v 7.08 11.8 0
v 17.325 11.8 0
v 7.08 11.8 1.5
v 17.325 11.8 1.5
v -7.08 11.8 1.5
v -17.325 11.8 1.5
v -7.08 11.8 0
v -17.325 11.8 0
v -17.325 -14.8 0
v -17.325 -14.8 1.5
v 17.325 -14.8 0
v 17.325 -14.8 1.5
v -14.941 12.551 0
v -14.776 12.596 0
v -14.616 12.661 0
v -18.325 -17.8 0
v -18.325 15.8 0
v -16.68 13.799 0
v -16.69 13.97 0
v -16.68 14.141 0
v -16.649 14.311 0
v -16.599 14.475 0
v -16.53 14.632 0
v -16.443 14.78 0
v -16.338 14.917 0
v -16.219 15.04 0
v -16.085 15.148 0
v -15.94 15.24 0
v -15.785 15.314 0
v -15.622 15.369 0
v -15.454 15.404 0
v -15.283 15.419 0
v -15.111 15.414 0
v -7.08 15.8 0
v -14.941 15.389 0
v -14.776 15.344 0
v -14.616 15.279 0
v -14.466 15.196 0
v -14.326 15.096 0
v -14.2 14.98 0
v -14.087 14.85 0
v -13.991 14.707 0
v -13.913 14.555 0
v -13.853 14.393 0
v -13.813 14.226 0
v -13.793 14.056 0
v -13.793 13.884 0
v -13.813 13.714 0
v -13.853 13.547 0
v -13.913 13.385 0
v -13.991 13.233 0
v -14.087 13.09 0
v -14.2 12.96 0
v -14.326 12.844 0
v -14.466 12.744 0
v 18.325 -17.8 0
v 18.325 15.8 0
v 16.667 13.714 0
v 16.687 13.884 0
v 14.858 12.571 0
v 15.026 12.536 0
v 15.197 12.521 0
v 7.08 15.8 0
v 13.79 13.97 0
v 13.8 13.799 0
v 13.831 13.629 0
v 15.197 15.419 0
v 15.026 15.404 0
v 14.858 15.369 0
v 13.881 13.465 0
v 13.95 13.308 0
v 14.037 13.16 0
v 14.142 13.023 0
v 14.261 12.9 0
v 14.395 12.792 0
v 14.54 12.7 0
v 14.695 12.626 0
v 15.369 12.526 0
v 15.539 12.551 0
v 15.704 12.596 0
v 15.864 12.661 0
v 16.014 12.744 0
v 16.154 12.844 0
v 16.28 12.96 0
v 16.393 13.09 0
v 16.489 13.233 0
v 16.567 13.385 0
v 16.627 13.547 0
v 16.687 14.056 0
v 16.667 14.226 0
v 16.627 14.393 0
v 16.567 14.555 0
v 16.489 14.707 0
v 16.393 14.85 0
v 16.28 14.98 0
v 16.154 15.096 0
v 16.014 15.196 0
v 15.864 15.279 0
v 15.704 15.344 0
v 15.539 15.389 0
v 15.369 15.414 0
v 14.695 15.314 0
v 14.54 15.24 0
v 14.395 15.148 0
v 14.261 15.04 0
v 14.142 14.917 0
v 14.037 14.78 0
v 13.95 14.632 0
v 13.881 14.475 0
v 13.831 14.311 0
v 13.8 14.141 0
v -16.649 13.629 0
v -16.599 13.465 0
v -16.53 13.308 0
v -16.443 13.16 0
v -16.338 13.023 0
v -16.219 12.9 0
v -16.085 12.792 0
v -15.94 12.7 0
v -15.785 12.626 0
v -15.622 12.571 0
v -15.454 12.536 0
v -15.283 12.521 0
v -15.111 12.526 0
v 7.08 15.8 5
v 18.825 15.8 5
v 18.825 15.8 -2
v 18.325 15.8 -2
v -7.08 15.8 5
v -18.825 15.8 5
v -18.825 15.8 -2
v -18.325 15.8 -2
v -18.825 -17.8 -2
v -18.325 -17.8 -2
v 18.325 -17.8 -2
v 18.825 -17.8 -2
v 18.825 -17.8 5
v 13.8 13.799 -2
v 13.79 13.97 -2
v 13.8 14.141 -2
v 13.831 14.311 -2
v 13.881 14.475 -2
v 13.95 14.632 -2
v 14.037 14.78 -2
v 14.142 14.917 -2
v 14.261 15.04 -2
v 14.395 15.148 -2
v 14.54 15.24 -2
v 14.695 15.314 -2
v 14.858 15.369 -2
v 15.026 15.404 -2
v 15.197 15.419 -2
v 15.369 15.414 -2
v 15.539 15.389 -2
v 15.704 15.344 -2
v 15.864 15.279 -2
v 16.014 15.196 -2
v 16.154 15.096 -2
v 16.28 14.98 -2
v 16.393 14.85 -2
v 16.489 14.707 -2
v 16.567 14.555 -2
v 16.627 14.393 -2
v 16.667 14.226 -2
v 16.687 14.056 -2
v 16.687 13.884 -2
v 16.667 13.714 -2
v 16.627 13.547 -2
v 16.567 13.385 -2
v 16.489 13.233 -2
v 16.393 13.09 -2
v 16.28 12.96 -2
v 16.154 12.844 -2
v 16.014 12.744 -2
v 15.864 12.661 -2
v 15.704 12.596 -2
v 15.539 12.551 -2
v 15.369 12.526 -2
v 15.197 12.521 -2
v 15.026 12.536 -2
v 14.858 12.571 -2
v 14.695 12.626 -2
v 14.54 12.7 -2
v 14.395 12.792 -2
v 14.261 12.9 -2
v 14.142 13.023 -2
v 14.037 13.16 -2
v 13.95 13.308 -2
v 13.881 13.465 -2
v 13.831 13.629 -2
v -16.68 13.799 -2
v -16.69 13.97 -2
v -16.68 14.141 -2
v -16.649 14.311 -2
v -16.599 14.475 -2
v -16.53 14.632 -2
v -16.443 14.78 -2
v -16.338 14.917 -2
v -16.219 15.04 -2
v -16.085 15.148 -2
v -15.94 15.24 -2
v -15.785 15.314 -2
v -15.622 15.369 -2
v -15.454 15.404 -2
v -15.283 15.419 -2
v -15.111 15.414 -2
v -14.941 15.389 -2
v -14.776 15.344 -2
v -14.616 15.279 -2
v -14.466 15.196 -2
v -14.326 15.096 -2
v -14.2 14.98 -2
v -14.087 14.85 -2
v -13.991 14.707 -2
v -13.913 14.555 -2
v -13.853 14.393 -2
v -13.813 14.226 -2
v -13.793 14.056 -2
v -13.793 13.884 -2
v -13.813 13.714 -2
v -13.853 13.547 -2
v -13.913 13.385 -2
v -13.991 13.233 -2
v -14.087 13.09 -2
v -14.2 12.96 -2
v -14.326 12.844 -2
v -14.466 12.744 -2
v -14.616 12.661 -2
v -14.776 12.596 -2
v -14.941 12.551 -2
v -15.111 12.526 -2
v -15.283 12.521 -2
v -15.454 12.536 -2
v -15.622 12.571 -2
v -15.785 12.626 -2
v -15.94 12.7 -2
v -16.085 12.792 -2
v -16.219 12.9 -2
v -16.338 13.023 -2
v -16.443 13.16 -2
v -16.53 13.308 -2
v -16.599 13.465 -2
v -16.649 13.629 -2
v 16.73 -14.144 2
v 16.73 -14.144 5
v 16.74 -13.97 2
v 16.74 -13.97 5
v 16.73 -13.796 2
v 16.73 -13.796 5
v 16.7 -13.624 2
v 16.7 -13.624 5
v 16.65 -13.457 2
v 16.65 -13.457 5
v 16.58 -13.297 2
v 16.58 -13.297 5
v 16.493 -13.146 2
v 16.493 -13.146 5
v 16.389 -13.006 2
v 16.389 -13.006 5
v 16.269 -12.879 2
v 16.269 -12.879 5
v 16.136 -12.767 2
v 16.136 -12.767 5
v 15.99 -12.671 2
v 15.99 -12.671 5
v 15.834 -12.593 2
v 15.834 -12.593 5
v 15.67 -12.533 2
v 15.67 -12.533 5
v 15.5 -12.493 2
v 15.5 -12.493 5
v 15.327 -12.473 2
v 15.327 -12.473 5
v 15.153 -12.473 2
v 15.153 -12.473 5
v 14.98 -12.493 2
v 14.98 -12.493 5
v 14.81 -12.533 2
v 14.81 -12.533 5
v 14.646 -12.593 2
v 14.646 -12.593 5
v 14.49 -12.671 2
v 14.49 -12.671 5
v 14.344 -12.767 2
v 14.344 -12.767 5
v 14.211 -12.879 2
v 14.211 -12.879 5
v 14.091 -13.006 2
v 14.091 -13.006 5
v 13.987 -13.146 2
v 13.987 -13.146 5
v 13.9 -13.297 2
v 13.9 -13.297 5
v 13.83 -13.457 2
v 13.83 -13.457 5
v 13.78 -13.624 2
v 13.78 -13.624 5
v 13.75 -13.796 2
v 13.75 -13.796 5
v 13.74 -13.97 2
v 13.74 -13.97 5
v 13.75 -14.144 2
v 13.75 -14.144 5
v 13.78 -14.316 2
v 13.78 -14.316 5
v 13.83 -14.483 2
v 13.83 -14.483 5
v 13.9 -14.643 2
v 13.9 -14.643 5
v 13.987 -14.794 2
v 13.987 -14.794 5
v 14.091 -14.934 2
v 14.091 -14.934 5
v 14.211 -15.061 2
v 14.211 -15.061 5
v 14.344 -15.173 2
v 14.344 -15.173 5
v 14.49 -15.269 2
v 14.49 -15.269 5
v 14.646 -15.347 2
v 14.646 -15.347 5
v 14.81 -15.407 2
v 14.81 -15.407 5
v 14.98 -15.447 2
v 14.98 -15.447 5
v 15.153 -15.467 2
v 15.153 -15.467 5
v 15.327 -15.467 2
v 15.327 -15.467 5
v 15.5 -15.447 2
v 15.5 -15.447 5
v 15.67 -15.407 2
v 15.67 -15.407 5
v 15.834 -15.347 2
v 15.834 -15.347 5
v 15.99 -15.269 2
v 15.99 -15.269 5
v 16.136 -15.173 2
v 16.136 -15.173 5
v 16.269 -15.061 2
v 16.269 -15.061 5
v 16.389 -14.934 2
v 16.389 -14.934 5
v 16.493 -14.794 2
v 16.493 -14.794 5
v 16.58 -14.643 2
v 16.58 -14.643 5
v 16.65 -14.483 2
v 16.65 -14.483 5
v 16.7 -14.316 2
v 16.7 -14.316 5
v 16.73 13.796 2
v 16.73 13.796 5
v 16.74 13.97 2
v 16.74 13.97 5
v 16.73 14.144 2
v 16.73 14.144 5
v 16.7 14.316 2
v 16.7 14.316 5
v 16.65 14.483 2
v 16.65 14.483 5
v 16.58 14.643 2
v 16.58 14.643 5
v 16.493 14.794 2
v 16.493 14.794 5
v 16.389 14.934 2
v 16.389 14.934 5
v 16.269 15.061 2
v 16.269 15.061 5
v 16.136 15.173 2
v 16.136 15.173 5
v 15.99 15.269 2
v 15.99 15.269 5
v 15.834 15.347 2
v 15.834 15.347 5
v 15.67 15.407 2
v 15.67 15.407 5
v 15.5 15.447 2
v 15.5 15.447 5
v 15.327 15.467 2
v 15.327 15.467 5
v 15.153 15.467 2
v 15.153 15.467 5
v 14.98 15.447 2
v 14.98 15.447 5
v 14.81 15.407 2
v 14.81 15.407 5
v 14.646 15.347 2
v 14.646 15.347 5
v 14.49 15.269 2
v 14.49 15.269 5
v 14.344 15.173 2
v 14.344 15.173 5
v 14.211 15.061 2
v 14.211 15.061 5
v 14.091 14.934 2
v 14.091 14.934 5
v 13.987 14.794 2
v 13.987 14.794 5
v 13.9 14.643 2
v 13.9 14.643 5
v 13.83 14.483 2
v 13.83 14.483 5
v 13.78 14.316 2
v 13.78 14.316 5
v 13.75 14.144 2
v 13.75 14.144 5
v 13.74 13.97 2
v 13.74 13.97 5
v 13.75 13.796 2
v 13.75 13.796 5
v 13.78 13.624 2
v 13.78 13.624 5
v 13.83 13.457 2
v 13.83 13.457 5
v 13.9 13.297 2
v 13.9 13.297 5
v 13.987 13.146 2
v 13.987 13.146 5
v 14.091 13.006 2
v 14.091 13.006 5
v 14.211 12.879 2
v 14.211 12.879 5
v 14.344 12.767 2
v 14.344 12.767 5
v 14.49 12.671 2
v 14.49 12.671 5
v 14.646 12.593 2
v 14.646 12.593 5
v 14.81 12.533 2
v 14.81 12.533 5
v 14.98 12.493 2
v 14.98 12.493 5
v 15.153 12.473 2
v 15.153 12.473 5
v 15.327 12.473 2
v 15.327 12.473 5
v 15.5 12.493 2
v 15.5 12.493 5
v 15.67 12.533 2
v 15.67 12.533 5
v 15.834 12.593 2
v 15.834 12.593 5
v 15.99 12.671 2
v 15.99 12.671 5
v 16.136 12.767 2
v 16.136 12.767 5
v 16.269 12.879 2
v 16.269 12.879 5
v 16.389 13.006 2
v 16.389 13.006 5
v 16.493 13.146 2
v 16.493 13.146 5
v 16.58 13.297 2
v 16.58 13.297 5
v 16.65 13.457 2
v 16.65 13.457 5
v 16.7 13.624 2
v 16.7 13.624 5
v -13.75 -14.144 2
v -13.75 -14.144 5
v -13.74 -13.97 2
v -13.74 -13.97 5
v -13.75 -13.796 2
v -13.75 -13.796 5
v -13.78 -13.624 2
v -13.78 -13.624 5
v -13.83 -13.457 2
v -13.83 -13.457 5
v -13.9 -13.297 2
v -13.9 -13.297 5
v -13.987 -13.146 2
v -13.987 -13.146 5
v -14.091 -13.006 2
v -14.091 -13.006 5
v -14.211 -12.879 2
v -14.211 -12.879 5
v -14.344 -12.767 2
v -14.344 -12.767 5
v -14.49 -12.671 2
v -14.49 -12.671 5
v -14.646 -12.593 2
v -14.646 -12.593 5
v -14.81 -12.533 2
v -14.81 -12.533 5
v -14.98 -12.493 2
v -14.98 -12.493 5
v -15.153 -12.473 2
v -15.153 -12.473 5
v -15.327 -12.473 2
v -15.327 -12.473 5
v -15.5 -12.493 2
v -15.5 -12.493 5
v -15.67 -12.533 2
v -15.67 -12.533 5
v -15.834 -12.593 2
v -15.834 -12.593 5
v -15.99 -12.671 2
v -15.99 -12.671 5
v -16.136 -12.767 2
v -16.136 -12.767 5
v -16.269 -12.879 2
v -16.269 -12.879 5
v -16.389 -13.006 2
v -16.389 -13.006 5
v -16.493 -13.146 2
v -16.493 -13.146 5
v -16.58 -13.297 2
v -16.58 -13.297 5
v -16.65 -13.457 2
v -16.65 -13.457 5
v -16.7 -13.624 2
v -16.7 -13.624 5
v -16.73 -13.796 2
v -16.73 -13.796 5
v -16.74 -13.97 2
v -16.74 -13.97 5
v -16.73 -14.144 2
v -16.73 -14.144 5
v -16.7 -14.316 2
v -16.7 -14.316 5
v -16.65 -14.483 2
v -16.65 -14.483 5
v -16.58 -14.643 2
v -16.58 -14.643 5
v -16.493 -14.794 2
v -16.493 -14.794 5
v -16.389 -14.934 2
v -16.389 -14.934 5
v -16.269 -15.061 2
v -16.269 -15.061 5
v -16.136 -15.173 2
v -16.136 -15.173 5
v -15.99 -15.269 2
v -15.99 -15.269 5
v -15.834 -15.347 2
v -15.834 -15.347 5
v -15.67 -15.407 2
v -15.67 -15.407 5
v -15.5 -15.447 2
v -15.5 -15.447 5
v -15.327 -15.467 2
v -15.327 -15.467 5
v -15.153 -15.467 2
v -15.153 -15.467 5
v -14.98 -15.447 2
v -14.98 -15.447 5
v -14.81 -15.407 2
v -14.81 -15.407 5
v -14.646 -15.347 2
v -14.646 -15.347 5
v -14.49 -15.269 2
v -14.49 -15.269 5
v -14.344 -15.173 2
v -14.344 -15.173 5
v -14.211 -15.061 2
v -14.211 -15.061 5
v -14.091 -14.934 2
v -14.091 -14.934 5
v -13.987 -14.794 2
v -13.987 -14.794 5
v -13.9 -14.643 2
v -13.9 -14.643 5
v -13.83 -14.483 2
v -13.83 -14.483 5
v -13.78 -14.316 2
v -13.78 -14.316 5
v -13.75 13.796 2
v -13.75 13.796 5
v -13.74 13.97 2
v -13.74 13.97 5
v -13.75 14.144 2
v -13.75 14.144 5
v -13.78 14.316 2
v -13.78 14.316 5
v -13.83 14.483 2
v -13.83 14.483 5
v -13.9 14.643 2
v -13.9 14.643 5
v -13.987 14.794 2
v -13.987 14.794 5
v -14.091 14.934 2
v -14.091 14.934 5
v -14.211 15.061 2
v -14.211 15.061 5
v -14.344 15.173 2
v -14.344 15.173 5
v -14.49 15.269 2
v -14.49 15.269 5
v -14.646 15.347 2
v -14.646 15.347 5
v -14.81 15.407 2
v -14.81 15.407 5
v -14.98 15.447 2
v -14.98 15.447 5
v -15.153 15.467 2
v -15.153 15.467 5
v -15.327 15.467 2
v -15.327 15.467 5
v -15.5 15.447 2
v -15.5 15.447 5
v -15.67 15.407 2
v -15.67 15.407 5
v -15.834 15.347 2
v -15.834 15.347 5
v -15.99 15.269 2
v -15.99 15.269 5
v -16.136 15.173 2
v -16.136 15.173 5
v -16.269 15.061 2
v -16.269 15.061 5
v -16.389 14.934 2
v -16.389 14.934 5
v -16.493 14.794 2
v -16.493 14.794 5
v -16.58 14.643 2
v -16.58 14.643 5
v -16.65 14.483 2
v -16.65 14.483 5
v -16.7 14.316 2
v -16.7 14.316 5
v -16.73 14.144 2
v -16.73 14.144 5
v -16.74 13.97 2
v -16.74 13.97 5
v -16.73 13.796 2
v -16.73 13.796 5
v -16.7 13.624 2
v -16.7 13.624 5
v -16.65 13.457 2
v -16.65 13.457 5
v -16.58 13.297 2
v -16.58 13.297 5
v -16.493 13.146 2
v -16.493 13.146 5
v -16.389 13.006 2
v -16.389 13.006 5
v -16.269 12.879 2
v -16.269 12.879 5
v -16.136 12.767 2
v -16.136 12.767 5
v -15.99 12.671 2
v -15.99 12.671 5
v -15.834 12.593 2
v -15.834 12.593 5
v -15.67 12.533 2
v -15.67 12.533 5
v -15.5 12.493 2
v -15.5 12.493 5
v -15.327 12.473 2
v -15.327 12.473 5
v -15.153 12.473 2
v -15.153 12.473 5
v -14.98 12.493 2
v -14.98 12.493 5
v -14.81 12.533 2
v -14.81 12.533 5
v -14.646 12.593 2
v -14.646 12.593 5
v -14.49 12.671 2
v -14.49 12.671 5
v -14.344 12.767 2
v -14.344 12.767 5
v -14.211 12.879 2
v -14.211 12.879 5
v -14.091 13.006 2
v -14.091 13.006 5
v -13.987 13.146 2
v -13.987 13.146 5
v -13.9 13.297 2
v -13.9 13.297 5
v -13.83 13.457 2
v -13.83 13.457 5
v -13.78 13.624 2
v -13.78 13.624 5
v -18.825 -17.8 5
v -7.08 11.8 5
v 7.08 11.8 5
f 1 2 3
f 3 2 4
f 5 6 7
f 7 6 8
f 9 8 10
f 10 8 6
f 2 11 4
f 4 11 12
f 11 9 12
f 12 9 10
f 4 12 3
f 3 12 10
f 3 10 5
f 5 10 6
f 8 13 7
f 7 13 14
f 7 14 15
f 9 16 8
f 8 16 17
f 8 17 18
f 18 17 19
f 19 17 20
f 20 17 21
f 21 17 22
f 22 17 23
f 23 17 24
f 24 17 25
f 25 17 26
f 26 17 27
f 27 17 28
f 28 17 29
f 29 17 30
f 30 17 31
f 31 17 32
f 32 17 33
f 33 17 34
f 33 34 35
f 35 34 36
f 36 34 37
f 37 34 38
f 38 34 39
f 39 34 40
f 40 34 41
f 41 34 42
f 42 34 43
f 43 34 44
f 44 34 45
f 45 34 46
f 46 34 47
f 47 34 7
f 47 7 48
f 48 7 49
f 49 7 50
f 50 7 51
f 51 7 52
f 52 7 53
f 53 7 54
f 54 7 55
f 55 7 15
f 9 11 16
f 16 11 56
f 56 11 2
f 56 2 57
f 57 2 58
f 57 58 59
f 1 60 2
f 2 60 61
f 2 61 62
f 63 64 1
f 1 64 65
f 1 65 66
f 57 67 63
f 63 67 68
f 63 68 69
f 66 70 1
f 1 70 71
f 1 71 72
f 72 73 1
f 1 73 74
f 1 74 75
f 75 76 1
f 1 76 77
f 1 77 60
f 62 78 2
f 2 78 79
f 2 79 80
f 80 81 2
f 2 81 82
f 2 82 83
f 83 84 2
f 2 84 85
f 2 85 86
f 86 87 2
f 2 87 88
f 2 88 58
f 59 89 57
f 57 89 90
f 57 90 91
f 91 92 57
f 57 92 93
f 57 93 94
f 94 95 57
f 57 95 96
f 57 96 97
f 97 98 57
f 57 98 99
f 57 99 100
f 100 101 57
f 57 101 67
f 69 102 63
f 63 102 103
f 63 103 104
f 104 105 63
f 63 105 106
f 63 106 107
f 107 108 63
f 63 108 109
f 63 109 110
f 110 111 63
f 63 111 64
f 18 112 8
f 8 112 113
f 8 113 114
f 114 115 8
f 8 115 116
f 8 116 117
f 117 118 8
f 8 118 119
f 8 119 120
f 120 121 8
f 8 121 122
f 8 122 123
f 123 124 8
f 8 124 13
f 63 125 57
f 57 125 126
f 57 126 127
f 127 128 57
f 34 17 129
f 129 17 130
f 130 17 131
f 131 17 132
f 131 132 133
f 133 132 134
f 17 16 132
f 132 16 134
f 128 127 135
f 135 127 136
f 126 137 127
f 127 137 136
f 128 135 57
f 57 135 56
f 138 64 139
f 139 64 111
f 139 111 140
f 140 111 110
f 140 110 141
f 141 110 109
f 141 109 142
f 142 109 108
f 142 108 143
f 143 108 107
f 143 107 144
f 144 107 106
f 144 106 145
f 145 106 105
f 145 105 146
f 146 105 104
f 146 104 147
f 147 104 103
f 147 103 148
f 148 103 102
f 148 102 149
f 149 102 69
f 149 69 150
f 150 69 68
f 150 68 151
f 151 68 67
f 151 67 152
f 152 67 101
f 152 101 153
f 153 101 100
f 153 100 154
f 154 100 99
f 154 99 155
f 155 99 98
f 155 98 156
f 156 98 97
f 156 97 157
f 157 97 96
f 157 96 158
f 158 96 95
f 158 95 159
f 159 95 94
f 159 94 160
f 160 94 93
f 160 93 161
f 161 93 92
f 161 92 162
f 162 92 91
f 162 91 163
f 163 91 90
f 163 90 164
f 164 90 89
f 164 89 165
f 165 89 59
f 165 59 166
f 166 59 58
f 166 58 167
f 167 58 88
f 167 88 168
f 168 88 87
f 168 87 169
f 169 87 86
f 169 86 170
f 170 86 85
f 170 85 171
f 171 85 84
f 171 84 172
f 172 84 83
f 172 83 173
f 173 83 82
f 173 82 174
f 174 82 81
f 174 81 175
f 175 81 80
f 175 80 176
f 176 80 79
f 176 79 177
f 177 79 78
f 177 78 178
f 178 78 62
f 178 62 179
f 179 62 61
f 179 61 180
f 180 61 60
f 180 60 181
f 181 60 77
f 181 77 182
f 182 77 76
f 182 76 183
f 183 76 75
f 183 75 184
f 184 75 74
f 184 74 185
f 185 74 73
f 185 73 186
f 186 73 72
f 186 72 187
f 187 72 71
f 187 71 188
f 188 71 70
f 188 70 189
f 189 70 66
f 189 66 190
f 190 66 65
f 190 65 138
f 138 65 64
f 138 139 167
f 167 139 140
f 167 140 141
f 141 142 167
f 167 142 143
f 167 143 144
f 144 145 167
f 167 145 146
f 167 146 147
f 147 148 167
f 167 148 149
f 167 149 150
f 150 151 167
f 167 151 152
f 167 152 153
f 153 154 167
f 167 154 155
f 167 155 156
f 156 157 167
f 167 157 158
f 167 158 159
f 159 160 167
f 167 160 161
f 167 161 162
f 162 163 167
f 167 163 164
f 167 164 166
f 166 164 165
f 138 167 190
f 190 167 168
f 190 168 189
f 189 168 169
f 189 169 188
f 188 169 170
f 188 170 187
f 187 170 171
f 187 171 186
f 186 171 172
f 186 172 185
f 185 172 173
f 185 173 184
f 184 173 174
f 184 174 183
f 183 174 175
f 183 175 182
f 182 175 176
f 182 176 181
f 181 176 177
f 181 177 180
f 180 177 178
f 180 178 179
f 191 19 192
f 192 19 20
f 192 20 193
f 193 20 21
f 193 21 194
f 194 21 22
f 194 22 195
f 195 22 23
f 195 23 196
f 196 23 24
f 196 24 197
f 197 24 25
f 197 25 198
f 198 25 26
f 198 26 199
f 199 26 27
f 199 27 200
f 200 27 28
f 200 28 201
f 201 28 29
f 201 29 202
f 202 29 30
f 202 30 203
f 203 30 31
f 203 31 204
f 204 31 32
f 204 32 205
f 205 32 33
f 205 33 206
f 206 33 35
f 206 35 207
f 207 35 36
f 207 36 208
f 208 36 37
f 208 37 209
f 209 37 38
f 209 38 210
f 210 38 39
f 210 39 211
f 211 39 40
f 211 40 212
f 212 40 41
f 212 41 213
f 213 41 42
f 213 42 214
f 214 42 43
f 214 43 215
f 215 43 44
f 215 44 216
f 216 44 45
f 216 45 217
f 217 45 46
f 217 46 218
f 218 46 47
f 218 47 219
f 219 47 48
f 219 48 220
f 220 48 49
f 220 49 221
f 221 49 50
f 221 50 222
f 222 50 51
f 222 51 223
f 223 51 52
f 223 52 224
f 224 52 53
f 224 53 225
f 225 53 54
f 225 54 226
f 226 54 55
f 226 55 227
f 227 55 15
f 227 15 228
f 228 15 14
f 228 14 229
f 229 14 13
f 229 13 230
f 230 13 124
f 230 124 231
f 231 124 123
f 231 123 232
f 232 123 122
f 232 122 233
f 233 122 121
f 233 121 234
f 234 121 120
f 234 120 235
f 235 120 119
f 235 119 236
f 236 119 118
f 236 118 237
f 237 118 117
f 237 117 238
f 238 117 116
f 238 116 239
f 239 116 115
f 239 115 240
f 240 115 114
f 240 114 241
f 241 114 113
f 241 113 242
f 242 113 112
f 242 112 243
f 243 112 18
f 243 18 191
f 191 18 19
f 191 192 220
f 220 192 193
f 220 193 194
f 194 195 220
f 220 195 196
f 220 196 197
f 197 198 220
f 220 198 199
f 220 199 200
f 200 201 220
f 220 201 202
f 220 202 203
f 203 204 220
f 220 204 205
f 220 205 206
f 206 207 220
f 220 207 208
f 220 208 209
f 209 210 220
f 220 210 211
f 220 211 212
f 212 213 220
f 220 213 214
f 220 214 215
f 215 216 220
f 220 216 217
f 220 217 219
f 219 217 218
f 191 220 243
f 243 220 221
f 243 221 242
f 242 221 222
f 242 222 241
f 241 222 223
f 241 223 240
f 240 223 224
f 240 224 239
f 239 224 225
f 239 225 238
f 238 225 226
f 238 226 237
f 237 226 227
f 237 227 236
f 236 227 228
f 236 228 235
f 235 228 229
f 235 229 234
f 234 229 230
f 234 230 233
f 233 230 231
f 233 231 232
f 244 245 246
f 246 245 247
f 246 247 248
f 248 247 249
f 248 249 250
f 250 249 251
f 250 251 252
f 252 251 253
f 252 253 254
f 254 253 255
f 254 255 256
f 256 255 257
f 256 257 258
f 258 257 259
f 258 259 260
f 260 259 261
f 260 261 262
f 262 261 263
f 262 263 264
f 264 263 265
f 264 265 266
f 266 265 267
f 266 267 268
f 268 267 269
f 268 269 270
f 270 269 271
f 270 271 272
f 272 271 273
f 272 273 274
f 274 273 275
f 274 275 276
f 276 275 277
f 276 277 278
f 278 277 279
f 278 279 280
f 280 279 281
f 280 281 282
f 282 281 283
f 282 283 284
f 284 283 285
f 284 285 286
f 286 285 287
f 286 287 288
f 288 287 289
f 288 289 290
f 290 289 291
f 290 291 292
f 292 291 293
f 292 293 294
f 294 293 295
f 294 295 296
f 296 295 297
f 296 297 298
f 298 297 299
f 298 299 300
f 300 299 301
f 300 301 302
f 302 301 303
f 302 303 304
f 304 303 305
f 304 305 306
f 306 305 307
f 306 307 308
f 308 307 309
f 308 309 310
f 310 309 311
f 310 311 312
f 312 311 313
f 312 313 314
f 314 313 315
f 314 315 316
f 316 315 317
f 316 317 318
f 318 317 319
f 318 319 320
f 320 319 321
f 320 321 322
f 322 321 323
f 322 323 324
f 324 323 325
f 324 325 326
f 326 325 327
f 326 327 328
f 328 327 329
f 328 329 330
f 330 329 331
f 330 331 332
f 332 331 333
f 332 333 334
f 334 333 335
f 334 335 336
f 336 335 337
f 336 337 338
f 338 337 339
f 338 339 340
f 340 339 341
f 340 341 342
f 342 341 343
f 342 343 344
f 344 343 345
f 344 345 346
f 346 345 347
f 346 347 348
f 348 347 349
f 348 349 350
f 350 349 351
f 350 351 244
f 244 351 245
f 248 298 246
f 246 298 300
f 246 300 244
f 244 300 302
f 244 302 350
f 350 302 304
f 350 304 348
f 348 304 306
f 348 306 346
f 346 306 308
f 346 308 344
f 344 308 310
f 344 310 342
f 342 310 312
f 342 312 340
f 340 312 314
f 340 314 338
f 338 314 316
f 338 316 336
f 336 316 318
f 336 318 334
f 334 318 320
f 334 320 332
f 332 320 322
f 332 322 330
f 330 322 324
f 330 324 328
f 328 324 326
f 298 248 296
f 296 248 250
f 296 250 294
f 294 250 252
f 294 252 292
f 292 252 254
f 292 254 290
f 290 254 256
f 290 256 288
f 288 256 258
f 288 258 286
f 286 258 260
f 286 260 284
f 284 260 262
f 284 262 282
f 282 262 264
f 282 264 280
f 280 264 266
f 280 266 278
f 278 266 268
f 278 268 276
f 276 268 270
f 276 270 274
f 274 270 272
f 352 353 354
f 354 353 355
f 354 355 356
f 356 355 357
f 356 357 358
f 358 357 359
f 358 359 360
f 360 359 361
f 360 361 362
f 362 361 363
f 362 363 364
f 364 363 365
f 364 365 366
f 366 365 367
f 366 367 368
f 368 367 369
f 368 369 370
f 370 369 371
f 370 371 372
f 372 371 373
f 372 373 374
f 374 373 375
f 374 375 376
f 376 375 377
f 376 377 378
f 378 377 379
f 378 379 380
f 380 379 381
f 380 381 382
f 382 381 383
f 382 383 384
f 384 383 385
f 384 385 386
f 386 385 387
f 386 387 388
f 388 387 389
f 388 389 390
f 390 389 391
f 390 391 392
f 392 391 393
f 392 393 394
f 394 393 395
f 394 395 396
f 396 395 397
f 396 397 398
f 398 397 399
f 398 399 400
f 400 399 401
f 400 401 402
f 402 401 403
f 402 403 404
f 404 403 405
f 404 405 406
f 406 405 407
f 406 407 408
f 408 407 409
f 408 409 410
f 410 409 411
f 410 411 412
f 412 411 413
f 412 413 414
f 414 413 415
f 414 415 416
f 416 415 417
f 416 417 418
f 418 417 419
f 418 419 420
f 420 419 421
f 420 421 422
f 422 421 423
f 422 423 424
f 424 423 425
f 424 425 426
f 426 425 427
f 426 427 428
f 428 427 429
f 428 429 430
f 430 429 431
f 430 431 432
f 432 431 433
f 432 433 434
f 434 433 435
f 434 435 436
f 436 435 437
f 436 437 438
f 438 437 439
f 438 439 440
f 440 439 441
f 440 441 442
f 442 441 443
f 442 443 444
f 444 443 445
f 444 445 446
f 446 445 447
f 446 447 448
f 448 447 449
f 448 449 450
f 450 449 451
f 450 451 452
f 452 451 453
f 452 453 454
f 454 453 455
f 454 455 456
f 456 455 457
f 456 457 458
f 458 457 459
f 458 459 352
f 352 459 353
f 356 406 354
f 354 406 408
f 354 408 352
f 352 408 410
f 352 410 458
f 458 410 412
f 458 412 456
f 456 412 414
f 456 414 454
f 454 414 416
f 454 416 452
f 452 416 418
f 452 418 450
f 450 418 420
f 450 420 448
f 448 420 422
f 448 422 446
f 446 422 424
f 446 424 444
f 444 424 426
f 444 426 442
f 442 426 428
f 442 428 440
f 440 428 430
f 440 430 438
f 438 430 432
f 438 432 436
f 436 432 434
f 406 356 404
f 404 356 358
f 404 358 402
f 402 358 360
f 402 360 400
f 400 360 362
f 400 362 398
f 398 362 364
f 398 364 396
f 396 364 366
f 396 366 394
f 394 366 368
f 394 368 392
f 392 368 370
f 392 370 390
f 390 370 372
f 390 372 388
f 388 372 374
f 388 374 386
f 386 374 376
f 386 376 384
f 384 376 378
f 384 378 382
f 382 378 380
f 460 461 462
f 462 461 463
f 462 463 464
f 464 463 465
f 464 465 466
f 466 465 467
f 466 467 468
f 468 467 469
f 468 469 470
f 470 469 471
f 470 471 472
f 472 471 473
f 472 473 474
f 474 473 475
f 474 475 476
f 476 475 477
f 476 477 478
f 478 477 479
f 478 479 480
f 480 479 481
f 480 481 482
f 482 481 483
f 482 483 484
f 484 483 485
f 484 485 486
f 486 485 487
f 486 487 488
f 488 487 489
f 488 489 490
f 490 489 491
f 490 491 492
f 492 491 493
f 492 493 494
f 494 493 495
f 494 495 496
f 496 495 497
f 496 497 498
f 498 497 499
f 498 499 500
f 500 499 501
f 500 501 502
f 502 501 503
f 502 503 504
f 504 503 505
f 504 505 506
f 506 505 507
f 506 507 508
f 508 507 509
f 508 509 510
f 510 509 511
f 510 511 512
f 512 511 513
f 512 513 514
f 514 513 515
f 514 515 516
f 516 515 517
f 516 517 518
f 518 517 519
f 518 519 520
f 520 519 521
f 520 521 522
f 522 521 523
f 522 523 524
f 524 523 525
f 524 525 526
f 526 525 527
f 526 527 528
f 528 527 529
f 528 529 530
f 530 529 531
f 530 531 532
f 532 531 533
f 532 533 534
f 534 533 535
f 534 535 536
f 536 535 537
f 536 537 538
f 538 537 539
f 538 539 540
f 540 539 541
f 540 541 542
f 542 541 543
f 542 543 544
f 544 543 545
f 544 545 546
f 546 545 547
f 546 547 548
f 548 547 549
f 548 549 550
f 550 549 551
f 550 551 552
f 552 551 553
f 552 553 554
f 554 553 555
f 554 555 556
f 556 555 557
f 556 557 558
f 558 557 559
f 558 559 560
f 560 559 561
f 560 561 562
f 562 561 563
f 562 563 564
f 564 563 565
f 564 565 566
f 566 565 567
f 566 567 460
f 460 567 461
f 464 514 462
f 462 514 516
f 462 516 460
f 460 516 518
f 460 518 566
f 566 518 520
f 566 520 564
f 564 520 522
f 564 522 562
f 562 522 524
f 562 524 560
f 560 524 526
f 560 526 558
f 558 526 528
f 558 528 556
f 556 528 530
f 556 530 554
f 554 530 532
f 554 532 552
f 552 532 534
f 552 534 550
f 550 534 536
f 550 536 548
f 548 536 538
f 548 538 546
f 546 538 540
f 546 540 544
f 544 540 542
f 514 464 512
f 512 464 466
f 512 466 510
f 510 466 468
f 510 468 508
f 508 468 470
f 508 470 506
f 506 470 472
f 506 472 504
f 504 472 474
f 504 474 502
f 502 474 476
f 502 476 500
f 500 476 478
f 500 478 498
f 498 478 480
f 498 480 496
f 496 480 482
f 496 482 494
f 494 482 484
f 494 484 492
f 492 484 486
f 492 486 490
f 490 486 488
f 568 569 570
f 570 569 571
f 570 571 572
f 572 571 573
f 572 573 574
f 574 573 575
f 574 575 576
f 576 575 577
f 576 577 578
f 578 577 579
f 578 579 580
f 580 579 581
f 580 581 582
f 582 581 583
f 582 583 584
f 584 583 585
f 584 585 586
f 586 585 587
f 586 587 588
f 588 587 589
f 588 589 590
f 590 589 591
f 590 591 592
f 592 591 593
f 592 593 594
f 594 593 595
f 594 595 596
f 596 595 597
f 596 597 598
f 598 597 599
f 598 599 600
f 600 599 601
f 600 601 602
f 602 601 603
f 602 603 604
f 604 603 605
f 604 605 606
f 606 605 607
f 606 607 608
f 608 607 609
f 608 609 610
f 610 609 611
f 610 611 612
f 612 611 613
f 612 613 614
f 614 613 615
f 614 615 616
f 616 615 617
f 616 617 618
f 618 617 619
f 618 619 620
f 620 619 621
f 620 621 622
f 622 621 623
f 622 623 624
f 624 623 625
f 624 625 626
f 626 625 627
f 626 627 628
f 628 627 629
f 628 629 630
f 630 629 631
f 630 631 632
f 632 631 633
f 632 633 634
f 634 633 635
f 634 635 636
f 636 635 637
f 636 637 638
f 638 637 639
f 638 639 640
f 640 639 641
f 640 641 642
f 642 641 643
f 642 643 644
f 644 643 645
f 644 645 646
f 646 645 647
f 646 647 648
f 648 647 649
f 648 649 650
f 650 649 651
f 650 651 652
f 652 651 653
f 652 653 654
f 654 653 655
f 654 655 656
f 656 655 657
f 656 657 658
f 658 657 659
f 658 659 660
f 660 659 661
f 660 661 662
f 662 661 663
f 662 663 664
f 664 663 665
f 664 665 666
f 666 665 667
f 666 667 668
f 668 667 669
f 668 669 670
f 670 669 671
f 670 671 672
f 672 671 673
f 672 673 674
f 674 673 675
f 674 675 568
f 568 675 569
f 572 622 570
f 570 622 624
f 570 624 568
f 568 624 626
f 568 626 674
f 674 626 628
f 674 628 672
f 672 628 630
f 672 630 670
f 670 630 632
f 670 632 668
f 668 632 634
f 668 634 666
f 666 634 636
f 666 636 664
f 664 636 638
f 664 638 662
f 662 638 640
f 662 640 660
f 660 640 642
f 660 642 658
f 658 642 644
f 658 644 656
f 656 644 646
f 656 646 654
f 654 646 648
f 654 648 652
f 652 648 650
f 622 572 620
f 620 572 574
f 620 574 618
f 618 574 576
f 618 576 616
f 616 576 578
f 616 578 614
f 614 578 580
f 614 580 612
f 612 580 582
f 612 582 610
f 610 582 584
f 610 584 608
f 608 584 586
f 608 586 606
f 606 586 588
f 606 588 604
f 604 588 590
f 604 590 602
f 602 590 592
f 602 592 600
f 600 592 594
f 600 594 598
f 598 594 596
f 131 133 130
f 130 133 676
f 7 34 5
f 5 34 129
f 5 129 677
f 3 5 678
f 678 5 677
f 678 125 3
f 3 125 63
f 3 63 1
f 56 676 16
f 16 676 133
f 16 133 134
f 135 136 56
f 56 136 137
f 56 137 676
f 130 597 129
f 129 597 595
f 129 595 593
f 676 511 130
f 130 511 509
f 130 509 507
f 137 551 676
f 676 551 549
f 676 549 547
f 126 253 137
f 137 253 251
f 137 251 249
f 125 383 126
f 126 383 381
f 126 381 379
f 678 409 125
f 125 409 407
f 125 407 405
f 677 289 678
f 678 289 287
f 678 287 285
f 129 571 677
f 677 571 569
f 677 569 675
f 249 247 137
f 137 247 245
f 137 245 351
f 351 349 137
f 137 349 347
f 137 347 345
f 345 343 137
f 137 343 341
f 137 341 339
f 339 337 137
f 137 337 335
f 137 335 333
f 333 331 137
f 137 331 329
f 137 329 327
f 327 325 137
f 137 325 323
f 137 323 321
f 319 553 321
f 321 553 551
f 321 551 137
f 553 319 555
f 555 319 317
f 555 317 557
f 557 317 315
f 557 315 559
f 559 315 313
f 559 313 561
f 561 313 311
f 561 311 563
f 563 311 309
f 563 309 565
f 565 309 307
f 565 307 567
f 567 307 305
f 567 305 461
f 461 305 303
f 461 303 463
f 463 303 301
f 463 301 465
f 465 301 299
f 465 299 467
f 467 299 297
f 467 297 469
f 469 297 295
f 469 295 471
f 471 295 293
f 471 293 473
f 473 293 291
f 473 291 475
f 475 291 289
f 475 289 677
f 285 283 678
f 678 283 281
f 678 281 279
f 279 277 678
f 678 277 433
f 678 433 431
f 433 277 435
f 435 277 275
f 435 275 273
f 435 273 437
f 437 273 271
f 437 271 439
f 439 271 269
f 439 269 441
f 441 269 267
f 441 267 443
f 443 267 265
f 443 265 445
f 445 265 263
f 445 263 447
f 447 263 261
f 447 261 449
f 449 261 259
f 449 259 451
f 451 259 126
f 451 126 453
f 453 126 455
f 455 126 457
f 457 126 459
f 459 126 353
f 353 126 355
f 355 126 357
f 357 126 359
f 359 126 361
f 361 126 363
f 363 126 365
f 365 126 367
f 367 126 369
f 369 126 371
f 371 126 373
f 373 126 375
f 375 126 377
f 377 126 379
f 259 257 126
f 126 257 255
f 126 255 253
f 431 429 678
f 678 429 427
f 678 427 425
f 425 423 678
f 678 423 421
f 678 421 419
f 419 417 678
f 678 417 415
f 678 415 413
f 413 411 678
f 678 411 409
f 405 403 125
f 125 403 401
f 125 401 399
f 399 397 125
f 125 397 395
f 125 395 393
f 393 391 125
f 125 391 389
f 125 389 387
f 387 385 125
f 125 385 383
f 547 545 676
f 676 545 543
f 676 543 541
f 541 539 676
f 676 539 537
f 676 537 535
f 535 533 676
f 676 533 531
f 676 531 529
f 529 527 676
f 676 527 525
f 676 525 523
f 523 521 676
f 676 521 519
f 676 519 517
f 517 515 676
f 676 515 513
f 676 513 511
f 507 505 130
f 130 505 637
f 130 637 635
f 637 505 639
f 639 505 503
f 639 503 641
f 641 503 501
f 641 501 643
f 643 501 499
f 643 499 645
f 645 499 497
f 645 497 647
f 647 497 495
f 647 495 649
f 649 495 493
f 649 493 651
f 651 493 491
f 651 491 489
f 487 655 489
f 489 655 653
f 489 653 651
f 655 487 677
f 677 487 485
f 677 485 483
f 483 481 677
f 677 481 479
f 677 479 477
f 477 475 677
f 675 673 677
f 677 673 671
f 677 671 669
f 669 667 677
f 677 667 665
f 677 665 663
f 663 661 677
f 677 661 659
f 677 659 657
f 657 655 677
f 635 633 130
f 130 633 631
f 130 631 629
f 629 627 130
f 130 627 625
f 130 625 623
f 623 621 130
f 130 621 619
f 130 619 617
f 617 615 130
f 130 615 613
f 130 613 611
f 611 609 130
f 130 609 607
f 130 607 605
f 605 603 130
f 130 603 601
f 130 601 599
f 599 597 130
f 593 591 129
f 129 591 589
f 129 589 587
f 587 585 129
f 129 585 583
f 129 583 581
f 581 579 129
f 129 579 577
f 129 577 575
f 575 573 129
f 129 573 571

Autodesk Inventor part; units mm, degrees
ref_plane "YZ Plane" through (0, 0, 0) normal (1, 0, 0) x (0, 1, 0)
ref_plane "XZ Plane" through (0, 0, 0) normal (0, 1, 0) x (-1, 0, 0)
ref_plane "XY Plane" through (0, 0, 0) normal (0, 0, 1) x (1, 0, 0)
ref_plane "Work Plane1" through (0, 0, 0) normal (0, 0, 1) x (1, 0, 0)
sketch "Sketch1" plane through (0, 0, 0) normal (0, 0, 1) x (1, 0, 0)
  line L0 (-17.825, 16.8) -> (-17.825, -16.8) construction
  line L1 (-17.825, -16.8) -> (-7, -16.8) construction
  line L2 (-7, -16.8) -> (-7, -13.05) construction
  line L3 (-7, -13.05) -> (7, -13.05) construction
  line L4 (7, -13.05) -> (7, -16.8) construction
  line L5 (7, -16.8) -> (17.825, -16.8) construction
  line L6 (17.825, -16.8) -> (17.825, 16.8) construction
  line L7 (17.825, 16.8) -> (-17.825, 16.8) construction
  circle A0 centre (15.24, 13.97) radius 2.5 construction
  circle A1 centre (-15.24, 13.97) radius 2.5 construction
  circle A2 centre (-15.24, -13.97) radius 2.5 construction
  circle A3 centre (15.24, -13.97) radius 2.5 construction
  line L8 (-18.825, 17.8) -> (-7.08, 17.8)
  line L9 (-7.08, 17.8) -> (-7.08, 11.8)
  line L10 (-7.08, 11.8) -> (7.08, 11.8)
  line L11 (7.08, 11.8) -> (7.08, 17.8)
  line L12 (7.08, 17.8) -> (18.825, 17.8)
  line L13 (18.825, 17.8) -> (18.825, -17.8)
  line L14 (18.825, -17.8) -> (-18.825, -17.8)
  line L15 (-18.825, -17.8) -> (-18.825, 17.8)
  line L16 (-5.08, 14.5) -> (-5.08, 16.3) projected
  line L17 (5.08, 14.5) -> (5.08, 16.3) projected
  point P0 (0, 0)
  dimension "d0" = 1
  dimension "d1" = 1
  dimension "d2" = 1
  dimension "d3" = 1
  dimension "d4" = 2
  dimension "d5" = 5
extrude "Extrusion1" add sketch "Sketch1" along normal blind 5
sketch "Sketch2" plane through (0, 0, 5) normal (0, 0, 1) x (1, 0, 0)
  circle A0 centre (-15.24, 13.97) radius 1.5 projected
  circle A1 centre (-15.24, -13.97) radius 1.5 projected
  circle A2 centre (15.24, -13.97) radius 1.5 projected
  circle A3 centre (15.24, 13.97) radius 1.5 projected
  point P0 (0, 0)
extrude "Extrusion2" cut sketch "Sketch2" against normal blind 3
sketch "Sketch3" plane through (0, 0, 0) normal (0, 0, -1) x (-1, 0, 0)
  circle A0 centre (-15.24, 13.97) radius 1.5 construction
  circle A1 centre (15.24, 13.97) radius 1.5 construction
  circle A2 centre (15.24, -13.97) radius 1.5 construction
  circle A3 centre (-15.24, -13.97) radius 1.5 construction
  circle A4 centre (-15.24, 13.97) radius 1.45
  circle A5 centre (15.24, 13.97) radius 1.45
  circle A6 centre (15.24, -13.97) radius 1.45
  circle A7 centre (-15.24, -13.97) radius 1.45
  point P0 (0, 0)
  dimension "d10" = 2.9
extrude "Extrusion3" add sketch "Sketch3" along normal blind 2 contours A4 | A5
sketch "Sketch4" plane through (0, 0, 0) normal (0, 0, -1) x (-1, 0, 0)
  line L0 (18.825, 17.8) -> (18.825, -17.8) projected
  line L1 (7.08, 17.8) -> (18.825, 17.8) projected
  line L2 (-18.825, 17.8) -> (-7.08, 17.8) projected
  line L3 (-18.825, -17.8) -> (-18.825, 17.8) projected
  line L4 (18.825, -17.8) -> (-18.825, -17.8) projected
  line L5 (7.08, 11.8) -> (7.08, 17.8) projected
  line L6 (7.08, 17.8) -> (7.08, 17.3)
  line L7 (7.08, 17.3) -> (18.325, 17.3)
  line L8 (18.325, 17.3) -> (18.325, -17.3)
  line L9 (18.325, -17.3) -> (-18.325, -17.3)
  line L10 (-18.325, -17.3) -> (-18.325, 17.3)
  line L11 (-18.325, 17.3) -> (-7.08, 17.3)
  line L12 (-7.08, 17.3) -> (-7.08, 17.8)
  line L13 (-18.325, -17.3) -> (-18.325, -17.8)
  line L14 (18.325, -17.3) -> (18.325, -17.8)
  line L15 (18.825, -17.8) -> (-18.825, -17.8) projected
  point P0 (0, 0)
  dimension "d13" = 0.5
  dimension "d14" = 0.5
  dimension "d15" = 0.5
  dimension "d16" = 0.5
extrude "Extrusion4" add sketch "Sketch4" along normal blind 2 contours L0 L4 L14 L8 L7 L5 L1 | L4 L3 L2 L12 L11 L10 L13
sketch "Sketch5" plane through (7.08, 17.8, 5) normal (0, 1, 0) x (1, 0, 0)
  line L0 (23.7251, 17.6627) -> (-33.6889, 17.6627)
  line L1 (-33.6889, 17.6627) -> (-33.6889, -9.8348)
  line L2 (-33.6889, -9.8348) -> (23.7251, -9.8348)
  line L3 (23.7251, -9.8348) -> (23.7251, 17.6627)
  point P0 (-7.08, 5)
extrude "Extrusion5" cut sketch "Sketch5" against normal blind 2
sketch "Sketch6" plane through (0, 0, 0) normal (0, 0, -1) x (-1, 0, 0)
  line L0 (-17.325, 11.8) -> (17.325, 11.8)
  line L1 (17.325, 11.8) -> (17.325, -14.8)
  line L2 (17.325, -14.8) -> (-17.325, -14.8)
  line L3 (-17.325, -14.8) -> (-17.325, 11.8)
  line L4 (-7.08, 11.8) -> (7.08, 11.8) projected
  line L5 (-18.325, -17.8) -> (-18.325, 15.8) projected
  line L6 (18.325, 15.8) -> (18.325, -17.8) projected
  line L7 (18.325, -17.8) -> (-18.325, -17.8) projected
  point P0 (0, 0)
  point P1 (0, 11.8)
  dimension "d21" = 1
  dimension "d22" = 1
  dimension "d23" = 3
extrude "Extrusion6" cut sketch "Sketch6" against normal blind 1.5
properties part number "OledCarrier"
